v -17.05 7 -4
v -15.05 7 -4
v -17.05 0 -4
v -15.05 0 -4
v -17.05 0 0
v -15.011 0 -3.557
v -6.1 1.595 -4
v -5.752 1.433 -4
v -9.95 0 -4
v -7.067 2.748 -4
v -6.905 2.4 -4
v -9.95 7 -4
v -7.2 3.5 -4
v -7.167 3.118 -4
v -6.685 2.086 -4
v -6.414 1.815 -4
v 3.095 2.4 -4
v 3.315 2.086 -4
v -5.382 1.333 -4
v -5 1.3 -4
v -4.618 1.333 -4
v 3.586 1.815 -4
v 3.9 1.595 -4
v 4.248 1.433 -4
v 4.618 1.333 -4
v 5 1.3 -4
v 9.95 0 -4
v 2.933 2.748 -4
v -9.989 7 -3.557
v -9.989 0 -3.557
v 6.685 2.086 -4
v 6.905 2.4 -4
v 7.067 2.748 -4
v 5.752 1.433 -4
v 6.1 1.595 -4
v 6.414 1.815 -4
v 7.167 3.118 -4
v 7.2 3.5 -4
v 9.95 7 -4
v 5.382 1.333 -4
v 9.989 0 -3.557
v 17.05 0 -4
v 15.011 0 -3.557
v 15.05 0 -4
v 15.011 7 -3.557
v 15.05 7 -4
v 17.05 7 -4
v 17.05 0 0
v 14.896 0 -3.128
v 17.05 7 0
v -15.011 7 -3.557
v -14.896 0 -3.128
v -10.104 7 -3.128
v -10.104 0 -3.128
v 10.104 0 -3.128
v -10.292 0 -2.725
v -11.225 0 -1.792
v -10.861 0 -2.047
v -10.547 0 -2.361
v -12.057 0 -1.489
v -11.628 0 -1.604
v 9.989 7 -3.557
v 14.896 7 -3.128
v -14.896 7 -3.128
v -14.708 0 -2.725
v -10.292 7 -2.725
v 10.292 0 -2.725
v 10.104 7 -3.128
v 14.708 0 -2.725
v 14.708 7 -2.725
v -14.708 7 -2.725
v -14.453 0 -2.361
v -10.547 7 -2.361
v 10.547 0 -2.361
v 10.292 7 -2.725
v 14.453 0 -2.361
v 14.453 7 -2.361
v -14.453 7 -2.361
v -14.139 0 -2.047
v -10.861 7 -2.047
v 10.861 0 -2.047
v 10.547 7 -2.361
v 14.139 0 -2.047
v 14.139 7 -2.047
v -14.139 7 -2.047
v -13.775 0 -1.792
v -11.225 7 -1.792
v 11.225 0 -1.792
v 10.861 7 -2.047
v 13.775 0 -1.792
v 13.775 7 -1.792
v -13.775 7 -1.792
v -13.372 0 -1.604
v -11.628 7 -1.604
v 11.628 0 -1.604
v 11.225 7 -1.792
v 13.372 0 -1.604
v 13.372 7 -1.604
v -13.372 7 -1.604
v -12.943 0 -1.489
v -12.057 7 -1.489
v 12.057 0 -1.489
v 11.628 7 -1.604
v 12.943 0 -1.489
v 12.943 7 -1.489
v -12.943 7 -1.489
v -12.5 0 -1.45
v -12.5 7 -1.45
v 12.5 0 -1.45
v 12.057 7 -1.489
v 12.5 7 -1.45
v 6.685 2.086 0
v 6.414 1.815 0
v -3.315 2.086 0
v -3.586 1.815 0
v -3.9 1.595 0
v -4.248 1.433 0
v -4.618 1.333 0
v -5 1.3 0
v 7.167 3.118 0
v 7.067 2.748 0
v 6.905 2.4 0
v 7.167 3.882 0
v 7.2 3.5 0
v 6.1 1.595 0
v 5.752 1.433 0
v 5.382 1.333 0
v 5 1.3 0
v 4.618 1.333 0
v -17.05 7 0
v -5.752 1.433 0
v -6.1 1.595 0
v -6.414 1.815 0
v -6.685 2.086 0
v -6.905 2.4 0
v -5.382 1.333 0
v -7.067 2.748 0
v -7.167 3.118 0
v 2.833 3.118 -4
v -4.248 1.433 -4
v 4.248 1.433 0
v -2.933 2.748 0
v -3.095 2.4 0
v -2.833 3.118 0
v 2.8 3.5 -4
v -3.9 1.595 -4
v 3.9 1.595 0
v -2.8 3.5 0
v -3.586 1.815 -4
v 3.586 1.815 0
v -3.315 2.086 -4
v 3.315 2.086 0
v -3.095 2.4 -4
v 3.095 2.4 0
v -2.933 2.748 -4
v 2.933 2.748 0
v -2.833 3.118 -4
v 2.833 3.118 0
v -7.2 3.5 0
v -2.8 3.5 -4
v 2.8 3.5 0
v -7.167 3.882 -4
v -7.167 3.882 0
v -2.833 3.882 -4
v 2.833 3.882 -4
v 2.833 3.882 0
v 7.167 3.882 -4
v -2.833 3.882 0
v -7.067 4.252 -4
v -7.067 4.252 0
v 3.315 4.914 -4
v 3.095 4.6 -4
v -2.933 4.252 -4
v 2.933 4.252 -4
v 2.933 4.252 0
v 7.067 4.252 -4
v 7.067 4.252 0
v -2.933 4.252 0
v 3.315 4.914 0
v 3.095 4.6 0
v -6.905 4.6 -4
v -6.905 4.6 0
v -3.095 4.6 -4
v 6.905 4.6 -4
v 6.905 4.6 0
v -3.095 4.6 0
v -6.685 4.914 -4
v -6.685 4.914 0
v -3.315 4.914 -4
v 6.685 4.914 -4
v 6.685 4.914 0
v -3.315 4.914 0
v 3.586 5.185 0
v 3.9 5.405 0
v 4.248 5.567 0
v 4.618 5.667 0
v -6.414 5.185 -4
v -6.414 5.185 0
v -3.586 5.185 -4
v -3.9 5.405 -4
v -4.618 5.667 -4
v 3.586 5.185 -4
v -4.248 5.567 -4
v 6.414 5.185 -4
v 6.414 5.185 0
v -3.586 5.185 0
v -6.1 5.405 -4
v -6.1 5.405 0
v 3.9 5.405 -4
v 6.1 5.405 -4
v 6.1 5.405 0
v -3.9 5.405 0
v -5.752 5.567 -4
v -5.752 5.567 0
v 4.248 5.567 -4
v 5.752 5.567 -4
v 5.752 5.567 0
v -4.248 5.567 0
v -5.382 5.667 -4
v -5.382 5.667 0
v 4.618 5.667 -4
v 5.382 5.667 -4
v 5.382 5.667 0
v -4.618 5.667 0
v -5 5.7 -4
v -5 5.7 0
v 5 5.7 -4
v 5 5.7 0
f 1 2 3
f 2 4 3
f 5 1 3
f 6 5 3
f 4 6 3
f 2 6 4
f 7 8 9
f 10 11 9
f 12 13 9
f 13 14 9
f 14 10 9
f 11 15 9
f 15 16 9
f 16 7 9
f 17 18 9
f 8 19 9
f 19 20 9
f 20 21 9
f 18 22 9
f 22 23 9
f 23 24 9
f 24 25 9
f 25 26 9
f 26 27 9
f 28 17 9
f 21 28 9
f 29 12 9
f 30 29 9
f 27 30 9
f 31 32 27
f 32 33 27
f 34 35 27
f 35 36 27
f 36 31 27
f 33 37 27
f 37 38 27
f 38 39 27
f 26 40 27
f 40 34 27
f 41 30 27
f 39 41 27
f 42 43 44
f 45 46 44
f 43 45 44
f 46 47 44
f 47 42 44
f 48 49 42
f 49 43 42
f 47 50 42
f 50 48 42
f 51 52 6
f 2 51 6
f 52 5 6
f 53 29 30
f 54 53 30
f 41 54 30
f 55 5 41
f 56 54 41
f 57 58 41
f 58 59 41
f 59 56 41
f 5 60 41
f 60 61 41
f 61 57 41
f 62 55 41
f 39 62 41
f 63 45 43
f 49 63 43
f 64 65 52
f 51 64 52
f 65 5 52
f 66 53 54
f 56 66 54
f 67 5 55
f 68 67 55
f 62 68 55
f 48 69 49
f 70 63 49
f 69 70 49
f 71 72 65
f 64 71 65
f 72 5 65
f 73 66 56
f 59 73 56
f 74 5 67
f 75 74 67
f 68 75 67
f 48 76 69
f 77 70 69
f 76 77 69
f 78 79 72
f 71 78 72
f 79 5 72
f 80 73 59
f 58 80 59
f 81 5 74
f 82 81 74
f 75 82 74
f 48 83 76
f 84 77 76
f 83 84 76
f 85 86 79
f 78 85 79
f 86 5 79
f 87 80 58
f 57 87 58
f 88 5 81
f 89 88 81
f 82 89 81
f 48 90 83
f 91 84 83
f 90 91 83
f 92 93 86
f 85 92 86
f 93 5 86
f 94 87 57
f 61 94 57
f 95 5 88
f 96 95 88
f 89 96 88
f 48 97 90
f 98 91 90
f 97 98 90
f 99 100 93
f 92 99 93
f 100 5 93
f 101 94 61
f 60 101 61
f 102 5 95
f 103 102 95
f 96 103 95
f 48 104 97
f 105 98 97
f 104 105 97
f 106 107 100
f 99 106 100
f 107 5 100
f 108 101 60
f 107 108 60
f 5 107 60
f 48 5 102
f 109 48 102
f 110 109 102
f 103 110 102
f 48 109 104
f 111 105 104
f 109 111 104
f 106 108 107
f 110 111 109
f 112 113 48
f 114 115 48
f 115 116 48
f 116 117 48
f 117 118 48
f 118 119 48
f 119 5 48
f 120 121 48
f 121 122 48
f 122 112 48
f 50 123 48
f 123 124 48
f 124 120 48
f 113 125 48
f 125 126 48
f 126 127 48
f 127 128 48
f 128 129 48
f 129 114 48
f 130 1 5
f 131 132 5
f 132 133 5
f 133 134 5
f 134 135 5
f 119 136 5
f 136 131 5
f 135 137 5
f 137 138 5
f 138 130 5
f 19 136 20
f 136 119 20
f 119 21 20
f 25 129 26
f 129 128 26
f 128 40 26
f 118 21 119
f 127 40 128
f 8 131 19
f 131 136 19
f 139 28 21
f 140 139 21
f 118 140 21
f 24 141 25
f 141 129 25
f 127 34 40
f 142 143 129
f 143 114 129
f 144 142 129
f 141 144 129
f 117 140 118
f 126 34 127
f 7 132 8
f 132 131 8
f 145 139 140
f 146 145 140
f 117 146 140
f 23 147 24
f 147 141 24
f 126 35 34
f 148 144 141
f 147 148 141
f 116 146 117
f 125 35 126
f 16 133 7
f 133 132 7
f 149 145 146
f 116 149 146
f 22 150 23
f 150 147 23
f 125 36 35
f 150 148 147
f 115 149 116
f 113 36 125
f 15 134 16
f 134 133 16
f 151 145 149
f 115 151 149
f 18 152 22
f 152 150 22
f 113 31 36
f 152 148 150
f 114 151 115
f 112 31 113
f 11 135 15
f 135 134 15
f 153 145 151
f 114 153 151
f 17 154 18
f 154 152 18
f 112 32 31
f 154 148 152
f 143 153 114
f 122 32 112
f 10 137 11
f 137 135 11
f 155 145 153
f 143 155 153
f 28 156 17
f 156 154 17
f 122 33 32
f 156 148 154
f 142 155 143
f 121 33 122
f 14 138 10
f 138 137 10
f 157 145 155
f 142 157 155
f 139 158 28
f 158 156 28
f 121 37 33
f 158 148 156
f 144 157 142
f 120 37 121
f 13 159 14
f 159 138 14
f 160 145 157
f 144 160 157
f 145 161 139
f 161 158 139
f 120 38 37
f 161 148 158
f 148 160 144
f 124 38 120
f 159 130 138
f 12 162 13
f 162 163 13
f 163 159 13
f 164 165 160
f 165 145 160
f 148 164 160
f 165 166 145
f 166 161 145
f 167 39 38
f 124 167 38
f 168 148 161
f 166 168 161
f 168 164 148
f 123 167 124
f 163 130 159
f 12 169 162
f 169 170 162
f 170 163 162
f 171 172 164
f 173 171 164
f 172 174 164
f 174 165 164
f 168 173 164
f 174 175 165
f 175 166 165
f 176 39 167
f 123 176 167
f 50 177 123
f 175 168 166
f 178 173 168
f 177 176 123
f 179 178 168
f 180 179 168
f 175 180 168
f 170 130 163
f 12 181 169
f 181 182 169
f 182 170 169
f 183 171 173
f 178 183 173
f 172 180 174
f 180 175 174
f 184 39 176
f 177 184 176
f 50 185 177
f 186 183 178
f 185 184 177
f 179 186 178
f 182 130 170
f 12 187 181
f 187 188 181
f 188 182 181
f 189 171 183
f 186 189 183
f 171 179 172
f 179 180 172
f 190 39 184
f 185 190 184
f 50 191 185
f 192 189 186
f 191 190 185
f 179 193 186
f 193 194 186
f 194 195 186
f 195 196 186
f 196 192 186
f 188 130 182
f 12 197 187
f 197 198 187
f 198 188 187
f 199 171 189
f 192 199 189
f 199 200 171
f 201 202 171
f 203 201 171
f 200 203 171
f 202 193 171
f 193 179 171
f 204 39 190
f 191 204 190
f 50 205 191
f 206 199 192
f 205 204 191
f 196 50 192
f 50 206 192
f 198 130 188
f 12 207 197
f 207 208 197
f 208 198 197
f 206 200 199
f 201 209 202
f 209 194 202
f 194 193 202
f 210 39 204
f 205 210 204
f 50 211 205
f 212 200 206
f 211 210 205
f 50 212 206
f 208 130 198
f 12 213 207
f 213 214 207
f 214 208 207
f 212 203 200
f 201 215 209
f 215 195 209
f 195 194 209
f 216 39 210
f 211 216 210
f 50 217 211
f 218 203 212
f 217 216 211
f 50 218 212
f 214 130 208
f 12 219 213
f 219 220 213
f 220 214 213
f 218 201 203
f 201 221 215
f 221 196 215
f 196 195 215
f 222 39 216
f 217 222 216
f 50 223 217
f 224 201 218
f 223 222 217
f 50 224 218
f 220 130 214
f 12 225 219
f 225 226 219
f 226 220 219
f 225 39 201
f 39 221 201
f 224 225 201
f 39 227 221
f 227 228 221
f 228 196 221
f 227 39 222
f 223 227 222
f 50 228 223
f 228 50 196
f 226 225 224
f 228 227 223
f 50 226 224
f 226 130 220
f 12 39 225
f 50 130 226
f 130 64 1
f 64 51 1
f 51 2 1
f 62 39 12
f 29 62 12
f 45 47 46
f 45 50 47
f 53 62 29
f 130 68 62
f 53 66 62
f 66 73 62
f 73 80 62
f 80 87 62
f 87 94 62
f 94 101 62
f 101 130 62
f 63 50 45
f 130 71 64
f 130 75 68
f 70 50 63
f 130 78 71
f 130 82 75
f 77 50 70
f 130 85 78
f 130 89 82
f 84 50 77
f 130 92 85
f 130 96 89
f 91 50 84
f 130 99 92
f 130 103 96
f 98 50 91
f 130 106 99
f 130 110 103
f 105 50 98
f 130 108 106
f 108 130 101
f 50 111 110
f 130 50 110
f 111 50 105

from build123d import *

# Parameters (mm, degrees)
BOSS_EXTRUDE1_DEPTH = 7
SKETCH2_R           = 2.2
CUT_EXTRUDE1_DEPTH  = 4


with BuildPart() as part:
    # Sketch1 → Boss-Extrude1 (new body)
    with BuildSketch(Plane(origin=(0, 0, 0), x_dir=(1, 0, 0), z_dir=(0, 1, 0))):
        with BuildLine():
            Line((0, 0), (-17.05, 0))
            Line((-17.05, 0), (-17.05, 4))
            Line((-17.05, 4), (-15.05, 4))
            ThreePointArc((-15.05, 4), (-12.5, 1.45), (-9.95, 4))
            Line((-9.95, 4), (0, 4))
            Line((0, 4), (0, 0))
        make_face()
    extrude(amount=BOSS_EXTRUDE1_DEPTH)

    # Sketch2 → Cut-Extrude1 (cut)
    with BuildSketch(Plane.XY):
        with Locations((-5, 3.5)):
            Circle(SKETCH2_R)
    extrude(amount=-CUT_EXTRUDE1_DEPTH, mode=Mode.SUBTRACT)

    # Mirror1: part across plane


with BuildPart() as part_1:
    add(part.part)
    add(part.part.mirror(Plane(origin=(0, 0, 0), x_dir=(0, 0, 1), z_dir=(1, 0, 0))))


solid = part_1.part
